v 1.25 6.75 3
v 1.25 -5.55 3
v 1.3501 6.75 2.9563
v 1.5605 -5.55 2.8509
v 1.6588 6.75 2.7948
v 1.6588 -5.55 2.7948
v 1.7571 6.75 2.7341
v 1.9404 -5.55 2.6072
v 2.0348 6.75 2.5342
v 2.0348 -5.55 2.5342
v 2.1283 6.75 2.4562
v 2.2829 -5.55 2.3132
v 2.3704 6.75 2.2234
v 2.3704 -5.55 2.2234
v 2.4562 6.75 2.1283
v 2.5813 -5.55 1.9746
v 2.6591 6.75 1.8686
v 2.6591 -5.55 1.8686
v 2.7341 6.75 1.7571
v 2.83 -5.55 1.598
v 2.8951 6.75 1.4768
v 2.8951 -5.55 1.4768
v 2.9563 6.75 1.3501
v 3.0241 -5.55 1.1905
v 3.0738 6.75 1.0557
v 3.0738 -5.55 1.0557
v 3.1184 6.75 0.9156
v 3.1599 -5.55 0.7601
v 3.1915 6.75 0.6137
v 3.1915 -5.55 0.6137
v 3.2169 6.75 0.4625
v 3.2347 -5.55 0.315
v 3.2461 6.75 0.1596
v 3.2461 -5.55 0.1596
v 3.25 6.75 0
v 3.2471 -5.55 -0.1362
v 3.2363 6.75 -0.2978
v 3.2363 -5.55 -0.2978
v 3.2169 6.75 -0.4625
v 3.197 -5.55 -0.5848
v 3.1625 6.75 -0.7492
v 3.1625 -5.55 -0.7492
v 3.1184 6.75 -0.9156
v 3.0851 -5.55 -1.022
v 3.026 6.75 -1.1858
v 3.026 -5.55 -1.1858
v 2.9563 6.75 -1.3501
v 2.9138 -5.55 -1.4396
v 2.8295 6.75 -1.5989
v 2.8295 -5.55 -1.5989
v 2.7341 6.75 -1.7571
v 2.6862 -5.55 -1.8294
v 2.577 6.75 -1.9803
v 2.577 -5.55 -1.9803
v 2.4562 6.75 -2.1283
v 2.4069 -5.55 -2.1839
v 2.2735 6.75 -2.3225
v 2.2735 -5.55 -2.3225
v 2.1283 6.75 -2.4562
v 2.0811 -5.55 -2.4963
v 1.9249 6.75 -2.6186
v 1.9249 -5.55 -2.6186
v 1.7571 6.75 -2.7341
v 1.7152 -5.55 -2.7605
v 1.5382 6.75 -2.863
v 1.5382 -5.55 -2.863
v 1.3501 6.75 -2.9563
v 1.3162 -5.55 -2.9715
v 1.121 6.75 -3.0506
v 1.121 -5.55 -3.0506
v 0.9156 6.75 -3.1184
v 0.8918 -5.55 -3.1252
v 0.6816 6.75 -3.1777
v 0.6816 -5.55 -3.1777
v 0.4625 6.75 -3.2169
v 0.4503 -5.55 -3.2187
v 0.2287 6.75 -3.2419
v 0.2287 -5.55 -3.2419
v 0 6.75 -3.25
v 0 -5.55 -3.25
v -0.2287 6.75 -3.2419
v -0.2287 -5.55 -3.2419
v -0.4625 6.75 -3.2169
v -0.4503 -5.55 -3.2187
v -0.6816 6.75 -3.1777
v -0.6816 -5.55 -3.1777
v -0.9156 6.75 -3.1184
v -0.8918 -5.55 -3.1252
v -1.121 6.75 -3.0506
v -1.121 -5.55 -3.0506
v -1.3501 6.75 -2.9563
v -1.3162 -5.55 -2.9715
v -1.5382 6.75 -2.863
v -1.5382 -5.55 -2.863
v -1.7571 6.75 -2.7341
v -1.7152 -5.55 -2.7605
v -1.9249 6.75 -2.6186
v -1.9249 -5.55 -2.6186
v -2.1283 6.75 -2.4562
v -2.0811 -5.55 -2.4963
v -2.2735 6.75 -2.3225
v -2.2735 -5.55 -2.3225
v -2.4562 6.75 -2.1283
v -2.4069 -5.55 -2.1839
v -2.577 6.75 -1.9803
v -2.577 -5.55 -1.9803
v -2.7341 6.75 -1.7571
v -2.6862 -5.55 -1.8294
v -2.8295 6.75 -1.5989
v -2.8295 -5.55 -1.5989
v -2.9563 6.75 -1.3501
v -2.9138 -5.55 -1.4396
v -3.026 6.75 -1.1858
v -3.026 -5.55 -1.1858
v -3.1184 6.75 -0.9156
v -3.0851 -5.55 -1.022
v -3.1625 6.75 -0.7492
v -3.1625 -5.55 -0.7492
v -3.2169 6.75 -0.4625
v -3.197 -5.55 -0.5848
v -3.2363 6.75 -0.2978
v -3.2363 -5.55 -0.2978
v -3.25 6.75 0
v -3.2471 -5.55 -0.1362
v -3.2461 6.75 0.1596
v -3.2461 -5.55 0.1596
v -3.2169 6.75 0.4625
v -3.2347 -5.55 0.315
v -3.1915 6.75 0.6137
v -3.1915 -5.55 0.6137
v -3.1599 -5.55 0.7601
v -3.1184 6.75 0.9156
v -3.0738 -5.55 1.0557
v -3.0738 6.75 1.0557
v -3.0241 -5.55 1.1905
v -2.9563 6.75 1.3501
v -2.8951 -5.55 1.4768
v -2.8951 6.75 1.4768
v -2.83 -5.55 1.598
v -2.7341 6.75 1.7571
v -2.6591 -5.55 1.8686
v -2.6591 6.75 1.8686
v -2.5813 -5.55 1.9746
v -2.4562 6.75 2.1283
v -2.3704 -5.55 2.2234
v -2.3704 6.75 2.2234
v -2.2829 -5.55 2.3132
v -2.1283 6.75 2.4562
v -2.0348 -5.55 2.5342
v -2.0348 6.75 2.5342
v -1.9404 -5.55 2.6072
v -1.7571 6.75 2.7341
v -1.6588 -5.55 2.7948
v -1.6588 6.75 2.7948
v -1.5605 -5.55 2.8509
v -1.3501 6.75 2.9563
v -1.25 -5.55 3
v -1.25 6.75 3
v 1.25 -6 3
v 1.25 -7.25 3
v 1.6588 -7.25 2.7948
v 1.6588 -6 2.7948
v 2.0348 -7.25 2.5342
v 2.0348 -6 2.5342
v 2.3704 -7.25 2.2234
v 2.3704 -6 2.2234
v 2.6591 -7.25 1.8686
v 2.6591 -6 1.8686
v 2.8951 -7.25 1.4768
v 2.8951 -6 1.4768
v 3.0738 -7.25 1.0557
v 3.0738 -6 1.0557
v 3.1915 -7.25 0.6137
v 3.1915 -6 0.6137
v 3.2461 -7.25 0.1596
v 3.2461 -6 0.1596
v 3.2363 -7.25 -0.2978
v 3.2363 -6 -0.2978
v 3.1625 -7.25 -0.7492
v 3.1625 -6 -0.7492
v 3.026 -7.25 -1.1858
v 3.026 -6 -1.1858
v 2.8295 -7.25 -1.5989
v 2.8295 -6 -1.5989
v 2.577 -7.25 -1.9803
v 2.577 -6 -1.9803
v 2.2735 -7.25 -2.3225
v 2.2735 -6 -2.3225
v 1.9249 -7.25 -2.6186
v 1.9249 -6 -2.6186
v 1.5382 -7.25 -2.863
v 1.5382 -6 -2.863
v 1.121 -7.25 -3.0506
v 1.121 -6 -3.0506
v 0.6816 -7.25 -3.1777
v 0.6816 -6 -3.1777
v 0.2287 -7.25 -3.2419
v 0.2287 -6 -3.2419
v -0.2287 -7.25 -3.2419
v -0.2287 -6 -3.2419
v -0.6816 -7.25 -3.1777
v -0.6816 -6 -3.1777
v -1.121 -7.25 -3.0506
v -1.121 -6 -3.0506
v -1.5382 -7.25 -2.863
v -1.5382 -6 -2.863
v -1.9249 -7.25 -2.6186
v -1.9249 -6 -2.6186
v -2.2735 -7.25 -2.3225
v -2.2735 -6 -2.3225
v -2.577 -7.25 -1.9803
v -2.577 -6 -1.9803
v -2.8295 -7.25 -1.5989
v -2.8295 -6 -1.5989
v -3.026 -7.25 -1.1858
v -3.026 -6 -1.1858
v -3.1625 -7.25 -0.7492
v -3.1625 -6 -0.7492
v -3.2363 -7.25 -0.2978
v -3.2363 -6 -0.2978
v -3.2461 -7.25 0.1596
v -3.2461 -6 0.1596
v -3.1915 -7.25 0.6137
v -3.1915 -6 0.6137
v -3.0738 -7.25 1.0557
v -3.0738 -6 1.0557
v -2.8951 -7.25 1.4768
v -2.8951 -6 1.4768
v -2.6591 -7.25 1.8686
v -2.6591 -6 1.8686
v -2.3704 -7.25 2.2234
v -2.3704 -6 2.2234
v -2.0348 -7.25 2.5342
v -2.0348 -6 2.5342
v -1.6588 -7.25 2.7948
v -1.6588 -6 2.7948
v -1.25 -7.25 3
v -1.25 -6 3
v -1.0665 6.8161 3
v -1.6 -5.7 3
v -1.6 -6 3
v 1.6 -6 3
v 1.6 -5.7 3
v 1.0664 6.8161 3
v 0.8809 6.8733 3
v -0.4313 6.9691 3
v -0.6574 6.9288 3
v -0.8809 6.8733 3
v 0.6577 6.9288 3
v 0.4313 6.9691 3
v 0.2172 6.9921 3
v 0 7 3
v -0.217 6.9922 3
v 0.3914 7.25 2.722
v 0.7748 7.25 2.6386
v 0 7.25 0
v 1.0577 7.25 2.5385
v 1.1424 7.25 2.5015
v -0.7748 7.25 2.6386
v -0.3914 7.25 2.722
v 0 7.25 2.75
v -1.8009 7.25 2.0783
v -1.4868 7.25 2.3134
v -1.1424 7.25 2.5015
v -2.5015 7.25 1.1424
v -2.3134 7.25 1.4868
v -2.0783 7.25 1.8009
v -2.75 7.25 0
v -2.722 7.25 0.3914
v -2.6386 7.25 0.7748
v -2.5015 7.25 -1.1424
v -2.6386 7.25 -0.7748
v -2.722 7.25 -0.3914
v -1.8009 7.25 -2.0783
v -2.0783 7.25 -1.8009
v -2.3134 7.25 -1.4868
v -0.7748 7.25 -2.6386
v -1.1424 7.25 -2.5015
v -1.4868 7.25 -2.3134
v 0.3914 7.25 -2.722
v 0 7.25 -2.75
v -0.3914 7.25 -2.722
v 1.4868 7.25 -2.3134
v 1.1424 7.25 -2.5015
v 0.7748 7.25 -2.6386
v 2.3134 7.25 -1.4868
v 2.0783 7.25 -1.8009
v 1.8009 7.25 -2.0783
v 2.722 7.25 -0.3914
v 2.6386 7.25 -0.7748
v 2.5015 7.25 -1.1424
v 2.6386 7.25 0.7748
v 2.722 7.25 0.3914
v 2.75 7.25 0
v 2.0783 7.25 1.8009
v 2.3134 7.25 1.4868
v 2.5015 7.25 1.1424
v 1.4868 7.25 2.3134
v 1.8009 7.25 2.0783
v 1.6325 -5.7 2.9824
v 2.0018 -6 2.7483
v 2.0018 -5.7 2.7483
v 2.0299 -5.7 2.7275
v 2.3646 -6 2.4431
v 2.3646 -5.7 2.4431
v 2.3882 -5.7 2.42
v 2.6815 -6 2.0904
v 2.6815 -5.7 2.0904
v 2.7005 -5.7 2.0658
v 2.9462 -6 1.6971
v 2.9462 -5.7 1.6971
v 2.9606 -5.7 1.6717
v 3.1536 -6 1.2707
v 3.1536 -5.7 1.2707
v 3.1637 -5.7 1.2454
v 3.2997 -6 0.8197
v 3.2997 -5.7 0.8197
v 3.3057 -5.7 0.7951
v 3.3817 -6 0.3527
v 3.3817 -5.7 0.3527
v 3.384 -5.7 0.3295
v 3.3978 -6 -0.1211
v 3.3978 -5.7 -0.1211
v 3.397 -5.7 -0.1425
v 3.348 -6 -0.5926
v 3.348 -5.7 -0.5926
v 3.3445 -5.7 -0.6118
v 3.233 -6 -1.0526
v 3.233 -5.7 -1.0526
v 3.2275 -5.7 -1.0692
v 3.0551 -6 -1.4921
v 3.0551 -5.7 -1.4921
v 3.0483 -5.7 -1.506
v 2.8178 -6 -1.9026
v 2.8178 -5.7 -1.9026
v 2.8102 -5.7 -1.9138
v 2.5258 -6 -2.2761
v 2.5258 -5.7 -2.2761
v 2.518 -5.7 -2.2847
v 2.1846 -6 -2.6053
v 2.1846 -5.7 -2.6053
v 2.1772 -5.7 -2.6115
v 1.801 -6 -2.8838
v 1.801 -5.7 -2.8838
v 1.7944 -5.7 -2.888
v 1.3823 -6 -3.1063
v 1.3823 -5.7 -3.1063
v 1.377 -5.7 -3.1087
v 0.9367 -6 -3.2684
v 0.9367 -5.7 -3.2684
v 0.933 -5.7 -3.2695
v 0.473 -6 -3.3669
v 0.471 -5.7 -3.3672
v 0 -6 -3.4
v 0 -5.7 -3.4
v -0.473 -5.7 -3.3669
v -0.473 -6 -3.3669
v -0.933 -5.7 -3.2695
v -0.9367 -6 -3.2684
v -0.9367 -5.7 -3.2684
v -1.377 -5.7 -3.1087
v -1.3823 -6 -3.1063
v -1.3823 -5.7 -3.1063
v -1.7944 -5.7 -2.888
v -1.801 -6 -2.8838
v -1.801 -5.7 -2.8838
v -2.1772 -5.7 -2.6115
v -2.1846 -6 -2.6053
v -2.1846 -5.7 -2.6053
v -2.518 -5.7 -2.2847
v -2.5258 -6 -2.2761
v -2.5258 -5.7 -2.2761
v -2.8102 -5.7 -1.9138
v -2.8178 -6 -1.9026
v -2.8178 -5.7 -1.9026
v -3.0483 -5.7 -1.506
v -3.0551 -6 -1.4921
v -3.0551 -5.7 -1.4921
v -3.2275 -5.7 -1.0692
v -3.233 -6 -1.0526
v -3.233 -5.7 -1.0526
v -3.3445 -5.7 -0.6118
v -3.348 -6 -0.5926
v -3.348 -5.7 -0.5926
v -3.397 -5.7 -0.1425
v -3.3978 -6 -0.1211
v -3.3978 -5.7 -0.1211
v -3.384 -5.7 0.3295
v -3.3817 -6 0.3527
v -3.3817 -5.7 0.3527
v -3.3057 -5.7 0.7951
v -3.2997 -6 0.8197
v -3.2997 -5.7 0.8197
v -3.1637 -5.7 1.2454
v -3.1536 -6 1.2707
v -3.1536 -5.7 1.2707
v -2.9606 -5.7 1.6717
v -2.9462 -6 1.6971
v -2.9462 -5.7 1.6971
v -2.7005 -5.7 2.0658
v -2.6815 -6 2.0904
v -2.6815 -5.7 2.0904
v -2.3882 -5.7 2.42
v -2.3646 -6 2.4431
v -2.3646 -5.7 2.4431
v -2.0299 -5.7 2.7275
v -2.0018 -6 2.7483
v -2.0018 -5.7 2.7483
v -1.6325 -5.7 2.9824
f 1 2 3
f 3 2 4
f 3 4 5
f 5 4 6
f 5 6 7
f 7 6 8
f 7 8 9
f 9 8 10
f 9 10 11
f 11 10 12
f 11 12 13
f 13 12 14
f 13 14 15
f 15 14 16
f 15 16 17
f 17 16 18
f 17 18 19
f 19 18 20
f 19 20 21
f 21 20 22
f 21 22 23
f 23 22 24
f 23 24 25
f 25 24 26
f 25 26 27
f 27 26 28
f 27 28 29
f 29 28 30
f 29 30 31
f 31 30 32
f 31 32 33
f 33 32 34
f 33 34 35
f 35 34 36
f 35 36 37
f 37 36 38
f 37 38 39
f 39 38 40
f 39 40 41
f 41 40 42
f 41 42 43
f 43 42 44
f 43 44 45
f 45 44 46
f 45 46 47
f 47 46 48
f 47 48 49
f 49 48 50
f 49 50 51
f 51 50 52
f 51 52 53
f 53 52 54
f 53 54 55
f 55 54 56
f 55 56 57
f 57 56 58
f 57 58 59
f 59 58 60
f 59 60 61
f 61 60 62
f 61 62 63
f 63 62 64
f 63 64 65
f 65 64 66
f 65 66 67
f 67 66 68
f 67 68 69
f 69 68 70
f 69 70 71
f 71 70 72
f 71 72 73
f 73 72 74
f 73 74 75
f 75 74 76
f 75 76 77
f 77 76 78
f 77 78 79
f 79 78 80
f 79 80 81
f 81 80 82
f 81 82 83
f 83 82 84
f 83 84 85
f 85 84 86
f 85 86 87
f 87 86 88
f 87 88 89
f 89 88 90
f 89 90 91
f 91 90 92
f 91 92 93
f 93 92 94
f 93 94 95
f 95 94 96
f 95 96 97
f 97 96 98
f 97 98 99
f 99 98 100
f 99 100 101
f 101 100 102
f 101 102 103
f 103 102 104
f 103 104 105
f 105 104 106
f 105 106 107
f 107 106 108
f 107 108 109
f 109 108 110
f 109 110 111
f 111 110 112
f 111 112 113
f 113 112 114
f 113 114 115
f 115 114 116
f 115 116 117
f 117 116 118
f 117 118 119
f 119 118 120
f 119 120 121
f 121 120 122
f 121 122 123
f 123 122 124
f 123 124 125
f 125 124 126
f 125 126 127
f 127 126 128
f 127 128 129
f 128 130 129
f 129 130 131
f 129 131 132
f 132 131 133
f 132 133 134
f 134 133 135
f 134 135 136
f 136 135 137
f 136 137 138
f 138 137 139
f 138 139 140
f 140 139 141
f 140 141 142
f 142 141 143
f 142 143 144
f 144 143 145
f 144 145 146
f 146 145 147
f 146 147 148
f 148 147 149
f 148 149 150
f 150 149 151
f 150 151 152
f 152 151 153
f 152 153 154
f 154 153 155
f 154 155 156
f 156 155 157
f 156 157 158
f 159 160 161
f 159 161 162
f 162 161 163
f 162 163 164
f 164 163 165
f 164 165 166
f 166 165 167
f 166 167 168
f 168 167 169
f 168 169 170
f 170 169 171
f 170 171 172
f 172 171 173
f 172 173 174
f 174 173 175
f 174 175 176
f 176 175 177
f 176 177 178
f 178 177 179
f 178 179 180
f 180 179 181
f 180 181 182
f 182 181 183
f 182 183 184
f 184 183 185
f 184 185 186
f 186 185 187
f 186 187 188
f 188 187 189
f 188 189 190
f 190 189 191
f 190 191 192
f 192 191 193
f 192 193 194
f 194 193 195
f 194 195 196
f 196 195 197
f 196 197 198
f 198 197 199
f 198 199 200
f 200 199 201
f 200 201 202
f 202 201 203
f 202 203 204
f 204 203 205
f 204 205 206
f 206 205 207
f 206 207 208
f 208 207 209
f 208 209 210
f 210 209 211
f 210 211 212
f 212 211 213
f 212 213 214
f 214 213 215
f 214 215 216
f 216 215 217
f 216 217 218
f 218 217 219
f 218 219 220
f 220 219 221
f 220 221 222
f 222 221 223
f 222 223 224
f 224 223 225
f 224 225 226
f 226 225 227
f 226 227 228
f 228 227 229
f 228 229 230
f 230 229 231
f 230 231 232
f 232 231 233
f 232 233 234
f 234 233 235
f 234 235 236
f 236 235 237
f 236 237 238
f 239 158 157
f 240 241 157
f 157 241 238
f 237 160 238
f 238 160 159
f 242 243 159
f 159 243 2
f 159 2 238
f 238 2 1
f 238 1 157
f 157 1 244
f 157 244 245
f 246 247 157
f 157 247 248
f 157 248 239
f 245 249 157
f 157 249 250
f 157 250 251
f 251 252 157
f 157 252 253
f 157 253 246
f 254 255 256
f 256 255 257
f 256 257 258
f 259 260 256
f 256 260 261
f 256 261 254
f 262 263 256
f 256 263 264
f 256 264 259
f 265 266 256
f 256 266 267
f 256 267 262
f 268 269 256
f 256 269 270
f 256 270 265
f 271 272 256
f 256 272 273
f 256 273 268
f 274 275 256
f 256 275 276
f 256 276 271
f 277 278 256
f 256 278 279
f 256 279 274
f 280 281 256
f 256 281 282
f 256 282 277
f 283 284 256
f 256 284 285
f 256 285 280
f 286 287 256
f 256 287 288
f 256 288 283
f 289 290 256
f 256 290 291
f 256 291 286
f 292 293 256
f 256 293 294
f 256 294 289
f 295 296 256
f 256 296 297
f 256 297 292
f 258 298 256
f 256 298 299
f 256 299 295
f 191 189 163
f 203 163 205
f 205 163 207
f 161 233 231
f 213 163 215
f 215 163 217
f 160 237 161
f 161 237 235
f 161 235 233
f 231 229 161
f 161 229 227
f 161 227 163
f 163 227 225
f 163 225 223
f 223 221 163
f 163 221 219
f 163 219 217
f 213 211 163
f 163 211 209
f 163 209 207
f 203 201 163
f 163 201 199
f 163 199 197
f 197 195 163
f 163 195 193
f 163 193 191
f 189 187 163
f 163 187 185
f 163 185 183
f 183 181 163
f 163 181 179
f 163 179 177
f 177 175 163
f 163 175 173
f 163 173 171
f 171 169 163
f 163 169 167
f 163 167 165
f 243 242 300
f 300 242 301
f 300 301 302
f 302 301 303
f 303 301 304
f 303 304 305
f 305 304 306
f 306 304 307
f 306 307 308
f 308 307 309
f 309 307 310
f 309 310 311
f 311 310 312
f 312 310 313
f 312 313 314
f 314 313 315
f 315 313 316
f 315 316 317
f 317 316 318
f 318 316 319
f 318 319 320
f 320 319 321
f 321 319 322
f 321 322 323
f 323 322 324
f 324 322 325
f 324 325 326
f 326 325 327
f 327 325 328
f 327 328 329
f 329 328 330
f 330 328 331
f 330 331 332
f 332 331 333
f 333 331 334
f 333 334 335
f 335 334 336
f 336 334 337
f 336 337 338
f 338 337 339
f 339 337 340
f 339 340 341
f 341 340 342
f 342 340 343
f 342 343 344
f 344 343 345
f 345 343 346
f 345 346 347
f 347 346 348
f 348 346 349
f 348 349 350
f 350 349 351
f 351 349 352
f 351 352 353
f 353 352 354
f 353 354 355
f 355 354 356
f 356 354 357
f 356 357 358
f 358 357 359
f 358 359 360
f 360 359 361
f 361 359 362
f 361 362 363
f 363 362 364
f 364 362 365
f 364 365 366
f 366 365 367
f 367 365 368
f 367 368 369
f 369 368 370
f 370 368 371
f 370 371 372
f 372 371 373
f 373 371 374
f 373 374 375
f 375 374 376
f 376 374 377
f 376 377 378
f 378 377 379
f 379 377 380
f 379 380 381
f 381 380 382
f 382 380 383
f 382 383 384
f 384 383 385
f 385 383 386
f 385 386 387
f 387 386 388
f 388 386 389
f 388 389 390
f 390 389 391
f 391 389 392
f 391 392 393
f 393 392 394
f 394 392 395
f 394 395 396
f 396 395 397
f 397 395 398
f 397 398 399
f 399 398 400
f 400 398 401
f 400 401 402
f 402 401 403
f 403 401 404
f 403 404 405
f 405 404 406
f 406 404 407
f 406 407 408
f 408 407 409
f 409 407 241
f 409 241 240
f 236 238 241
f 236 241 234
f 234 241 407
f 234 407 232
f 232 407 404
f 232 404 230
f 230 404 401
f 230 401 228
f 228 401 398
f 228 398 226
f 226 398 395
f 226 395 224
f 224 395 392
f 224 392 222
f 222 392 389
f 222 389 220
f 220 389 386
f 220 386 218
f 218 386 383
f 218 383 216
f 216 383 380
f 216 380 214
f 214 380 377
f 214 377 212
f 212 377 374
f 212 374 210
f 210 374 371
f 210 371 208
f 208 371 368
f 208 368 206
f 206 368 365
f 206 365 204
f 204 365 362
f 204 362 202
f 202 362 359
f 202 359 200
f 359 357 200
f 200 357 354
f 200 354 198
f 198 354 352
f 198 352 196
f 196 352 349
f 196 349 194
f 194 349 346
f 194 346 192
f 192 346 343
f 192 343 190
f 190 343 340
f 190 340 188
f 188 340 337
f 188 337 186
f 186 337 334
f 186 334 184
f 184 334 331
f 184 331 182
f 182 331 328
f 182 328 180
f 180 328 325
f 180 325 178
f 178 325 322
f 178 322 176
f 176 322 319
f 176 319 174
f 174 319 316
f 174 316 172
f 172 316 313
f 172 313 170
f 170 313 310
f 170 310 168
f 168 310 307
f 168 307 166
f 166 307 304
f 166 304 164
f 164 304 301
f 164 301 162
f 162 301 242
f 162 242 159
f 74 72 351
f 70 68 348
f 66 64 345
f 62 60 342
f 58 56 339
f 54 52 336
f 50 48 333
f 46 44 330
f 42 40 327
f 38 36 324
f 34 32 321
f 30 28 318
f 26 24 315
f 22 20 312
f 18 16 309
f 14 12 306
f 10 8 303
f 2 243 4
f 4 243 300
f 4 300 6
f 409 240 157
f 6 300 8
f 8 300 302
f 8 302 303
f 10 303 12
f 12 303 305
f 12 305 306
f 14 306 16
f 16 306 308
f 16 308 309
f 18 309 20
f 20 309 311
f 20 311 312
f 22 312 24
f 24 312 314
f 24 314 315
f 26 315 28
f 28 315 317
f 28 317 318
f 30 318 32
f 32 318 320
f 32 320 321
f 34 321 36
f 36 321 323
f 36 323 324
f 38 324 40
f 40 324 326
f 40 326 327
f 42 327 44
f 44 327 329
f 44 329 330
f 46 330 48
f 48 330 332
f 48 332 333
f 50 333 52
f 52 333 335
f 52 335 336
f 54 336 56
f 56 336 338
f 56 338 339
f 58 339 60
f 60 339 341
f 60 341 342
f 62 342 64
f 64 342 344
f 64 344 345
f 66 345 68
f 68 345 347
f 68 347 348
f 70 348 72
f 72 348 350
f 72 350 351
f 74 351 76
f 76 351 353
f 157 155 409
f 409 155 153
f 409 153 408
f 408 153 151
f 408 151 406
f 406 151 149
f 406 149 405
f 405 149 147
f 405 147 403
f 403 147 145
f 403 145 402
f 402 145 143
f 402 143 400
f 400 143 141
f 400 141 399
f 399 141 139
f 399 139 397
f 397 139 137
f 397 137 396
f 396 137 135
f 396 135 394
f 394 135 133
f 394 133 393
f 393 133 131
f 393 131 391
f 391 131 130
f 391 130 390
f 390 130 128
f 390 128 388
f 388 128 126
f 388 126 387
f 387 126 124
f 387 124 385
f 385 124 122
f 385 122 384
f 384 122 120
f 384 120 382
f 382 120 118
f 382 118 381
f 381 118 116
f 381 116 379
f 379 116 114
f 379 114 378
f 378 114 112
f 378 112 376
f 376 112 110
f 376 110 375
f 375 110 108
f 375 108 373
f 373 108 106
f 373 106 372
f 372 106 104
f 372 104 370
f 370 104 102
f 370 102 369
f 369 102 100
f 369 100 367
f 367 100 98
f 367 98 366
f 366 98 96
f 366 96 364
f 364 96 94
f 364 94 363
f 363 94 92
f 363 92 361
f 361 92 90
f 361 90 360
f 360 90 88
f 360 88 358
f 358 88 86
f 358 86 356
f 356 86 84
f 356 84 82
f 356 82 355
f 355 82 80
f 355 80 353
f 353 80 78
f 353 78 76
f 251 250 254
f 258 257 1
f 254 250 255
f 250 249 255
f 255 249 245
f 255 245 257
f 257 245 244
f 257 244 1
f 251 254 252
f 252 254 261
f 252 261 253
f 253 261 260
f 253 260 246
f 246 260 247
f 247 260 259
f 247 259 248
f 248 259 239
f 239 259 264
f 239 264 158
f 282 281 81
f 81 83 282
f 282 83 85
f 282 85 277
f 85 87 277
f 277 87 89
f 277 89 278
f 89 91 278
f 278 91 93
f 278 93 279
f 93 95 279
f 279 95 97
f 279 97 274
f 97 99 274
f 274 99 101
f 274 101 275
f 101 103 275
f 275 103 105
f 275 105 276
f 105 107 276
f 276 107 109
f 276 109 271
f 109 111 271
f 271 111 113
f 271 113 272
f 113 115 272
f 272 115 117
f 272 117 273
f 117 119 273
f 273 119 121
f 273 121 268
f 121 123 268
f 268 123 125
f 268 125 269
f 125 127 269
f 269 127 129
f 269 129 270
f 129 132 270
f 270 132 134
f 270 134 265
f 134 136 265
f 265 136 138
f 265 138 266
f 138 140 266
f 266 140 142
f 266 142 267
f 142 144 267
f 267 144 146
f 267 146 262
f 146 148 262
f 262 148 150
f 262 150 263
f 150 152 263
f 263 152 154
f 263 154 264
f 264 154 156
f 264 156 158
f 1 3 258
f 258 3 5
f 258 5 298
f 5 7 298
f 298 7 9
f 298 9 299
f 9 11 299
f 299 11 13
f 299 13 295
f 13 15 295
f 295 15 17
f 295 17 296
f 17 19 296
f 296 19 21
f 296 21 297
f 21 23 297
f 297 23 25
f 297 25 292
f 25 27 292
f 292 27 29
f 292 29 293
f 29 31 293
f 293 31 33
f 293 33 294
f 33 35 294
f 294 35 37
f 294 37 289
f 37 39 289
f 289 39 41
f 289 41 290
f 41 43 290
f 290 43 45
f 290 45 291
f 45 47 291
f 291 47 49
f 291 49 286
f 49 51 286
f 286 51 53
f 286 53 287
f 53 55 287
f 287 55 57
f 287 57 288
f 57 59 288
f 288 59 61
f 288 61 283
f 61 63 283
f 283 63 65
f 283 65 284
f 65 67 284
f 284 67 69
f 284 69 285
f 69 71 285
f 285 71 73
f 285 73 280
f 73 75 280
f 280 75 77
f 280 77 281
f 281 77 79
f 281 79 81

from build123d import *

# Parameters (mm, degrees)
BOSS_EXTRUDE1_DEPTH = 7.25
BOSS_EXTRUDE2_START = -1.75
BOSS_EXTRUDE2_DEPTH = 0.5
CHAMFER1_SIZE       = 0.2


with BuildPart() as part:
    # Sketch1 → Boss-Extrude1 (new, symmetric)
    with BuildSketch(Plane(origin=(0, 0, 0), x_dir=(1, 0, 0), z_dir=(0, 1, 0))):
        with BuildLine():
            Line((-1.25, -3), (1.25, -3))
            ThreePointArc((1.25, -3), (0, 3.25), (-1.25, -3))
        make_face()
    extrude(amount=BOSS_EXTRUDE1_DEPTH, both=True)

    # Sketch2 → Boss-Extrude2 (add)
    with BuildSketch(Plane.XZ.offset(7.25).offset(BOSS_EXTRUDE2_START)):
        with BuildLine():
            Line((-1.25, 3), (-1.6, 3))
            ThreePointArc((-1.6, 3), (0, -3.4), (1.6, 3))
            Line((1.6, 3), (1.25, 3))
            ThreePointArc((1.25, 3), (0, -3.25), (-1.25, 3))
        make_face()
    extrude(amount=BOSS_EXTRUDE2_DEPTH)

    # Chamfer1
    # the kernel refuses this chamfer: 0.2 mm, written as the material it takes off along each edge
    with BuildSketch(Plane(origin=(0, -5.5, 0), x_dir=(-0.3315887986155938, 0, 0.9434240131736458), z_dir=(0.9434240131736458, 0, 0.3315887986155938))) as chamfer1_piece_1_section:
        Polygon((3.4, CHAMFER1_SIZE), (3.4 - CHAMFER1_SIZE, 0), (3.4, 0), align=None)
    chamfer1_piece_1 = revolve(axis=Axis((0, -5.5, 0), (0, -1, 0)), revolution_arc=321.269525005, mode=Mode.PRIVATE)
    chamfer1_piece_1 = chamfer1_piece_1 - Plane(origin=(0, -5.5, 0), x_dir=(0.38461538461538497, 0, 0.923076923076923), z_dir=(0, 1, 0)) * Cylinder(3.25, 14, mode=Mode.PRIVATE)
    add(chamfer1_piece_1, mode=Mode.SUBTRACT)

    # Chamfer2: read off the stored shape, not the designer's step
    # Chamfer2 outline → Chamfer2 (revolve, cut)
    with BuildSketch(Plane.XY):
        Polygon((3.25, 7.25), (2.75, 7.25), (3.25, 6.75), align=None)
    revolve(axis=Axis((0, 0, 0), (0, 1, 0)), mode=Mode.SUBTRACT)


solid = part.part
